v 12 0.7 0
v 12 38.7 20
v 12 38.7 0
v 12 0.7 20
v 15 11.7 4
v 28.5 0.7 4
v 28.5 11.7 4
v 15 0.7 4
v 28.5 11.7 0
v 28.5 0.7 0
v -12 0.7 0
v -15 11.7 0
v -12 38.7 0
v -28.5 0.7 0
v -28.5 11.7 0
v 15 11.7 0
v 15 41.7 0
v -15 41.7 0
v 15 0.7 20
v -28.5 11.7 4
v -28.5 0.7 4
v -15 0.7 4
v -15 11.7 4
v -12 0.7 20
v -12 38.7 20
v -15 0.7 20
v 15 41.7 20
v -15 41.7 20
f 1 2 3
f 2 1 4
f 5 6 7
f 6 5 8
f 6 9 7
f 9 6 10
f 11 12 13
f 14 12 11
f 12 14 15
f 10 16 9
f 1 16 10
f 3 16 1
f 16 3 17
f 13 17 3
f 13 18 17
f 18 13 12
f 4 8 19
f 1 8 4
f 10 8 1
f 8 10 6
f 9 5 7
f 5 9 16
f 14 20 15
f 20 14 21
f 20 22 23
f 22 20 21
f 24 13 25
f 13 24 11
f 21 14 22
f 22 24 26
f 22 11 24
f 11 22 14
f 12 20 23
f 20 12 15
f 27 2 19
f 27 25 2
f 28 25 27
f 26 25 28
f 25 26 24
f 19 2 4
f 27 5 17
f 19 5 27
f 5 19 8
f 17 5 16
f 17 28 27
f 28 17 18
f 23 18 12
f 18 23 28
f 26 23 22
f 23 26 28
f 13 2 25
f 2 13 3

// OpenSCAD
// Medidas Patas laterales
anchoPata = 16.5;
largoPata = 11;
altoPata = 4;

desvioXPata = 12;
desvioYPata = 0.7;
desvioZPata = 0;

// Medidas Pilares laterales
anchoPilar = 3;
largoPilar = 41;
altoPilar = 20;

desvioXPilar = 12;
desvioYPilar = 0.7;
desvioZPilar = 0;

// Medidas PT
// PT: Pilar trasero
anchoPT = 30;
largoPT = 3;
altoPT = 20;

desvioXPT = 0;
desvioYPT = 40.2;
desvioZPT = 10;

// Patas Laterales
translate([desvioXPata,desvioYPata,desvioZPata])
  cube([anchoPata,largoPata,altoPata]);
  
translate([-(desvioXPata+anchoPata),desvioYPata,desvioZPata])
  cube([anchoPata,largoPata,altoPata]);

// Pilares Laterales
translate([desvioXPilar,desvioYPilar,desvioZPilar])
  cube([anchoPilar,largoPilar,altoPilar]);
  
translate([-(desvioXPilar+anchoPilar),desvioYPilar,desvioZPilar])
  cube([anchoPilar,largoPilar,altoPilar]);

// Pilar Trasero
translate([desvioXPT,desvioYPT,desvioZPT])
  cube([anchoPT,largoPT,altoPT], center=true);
